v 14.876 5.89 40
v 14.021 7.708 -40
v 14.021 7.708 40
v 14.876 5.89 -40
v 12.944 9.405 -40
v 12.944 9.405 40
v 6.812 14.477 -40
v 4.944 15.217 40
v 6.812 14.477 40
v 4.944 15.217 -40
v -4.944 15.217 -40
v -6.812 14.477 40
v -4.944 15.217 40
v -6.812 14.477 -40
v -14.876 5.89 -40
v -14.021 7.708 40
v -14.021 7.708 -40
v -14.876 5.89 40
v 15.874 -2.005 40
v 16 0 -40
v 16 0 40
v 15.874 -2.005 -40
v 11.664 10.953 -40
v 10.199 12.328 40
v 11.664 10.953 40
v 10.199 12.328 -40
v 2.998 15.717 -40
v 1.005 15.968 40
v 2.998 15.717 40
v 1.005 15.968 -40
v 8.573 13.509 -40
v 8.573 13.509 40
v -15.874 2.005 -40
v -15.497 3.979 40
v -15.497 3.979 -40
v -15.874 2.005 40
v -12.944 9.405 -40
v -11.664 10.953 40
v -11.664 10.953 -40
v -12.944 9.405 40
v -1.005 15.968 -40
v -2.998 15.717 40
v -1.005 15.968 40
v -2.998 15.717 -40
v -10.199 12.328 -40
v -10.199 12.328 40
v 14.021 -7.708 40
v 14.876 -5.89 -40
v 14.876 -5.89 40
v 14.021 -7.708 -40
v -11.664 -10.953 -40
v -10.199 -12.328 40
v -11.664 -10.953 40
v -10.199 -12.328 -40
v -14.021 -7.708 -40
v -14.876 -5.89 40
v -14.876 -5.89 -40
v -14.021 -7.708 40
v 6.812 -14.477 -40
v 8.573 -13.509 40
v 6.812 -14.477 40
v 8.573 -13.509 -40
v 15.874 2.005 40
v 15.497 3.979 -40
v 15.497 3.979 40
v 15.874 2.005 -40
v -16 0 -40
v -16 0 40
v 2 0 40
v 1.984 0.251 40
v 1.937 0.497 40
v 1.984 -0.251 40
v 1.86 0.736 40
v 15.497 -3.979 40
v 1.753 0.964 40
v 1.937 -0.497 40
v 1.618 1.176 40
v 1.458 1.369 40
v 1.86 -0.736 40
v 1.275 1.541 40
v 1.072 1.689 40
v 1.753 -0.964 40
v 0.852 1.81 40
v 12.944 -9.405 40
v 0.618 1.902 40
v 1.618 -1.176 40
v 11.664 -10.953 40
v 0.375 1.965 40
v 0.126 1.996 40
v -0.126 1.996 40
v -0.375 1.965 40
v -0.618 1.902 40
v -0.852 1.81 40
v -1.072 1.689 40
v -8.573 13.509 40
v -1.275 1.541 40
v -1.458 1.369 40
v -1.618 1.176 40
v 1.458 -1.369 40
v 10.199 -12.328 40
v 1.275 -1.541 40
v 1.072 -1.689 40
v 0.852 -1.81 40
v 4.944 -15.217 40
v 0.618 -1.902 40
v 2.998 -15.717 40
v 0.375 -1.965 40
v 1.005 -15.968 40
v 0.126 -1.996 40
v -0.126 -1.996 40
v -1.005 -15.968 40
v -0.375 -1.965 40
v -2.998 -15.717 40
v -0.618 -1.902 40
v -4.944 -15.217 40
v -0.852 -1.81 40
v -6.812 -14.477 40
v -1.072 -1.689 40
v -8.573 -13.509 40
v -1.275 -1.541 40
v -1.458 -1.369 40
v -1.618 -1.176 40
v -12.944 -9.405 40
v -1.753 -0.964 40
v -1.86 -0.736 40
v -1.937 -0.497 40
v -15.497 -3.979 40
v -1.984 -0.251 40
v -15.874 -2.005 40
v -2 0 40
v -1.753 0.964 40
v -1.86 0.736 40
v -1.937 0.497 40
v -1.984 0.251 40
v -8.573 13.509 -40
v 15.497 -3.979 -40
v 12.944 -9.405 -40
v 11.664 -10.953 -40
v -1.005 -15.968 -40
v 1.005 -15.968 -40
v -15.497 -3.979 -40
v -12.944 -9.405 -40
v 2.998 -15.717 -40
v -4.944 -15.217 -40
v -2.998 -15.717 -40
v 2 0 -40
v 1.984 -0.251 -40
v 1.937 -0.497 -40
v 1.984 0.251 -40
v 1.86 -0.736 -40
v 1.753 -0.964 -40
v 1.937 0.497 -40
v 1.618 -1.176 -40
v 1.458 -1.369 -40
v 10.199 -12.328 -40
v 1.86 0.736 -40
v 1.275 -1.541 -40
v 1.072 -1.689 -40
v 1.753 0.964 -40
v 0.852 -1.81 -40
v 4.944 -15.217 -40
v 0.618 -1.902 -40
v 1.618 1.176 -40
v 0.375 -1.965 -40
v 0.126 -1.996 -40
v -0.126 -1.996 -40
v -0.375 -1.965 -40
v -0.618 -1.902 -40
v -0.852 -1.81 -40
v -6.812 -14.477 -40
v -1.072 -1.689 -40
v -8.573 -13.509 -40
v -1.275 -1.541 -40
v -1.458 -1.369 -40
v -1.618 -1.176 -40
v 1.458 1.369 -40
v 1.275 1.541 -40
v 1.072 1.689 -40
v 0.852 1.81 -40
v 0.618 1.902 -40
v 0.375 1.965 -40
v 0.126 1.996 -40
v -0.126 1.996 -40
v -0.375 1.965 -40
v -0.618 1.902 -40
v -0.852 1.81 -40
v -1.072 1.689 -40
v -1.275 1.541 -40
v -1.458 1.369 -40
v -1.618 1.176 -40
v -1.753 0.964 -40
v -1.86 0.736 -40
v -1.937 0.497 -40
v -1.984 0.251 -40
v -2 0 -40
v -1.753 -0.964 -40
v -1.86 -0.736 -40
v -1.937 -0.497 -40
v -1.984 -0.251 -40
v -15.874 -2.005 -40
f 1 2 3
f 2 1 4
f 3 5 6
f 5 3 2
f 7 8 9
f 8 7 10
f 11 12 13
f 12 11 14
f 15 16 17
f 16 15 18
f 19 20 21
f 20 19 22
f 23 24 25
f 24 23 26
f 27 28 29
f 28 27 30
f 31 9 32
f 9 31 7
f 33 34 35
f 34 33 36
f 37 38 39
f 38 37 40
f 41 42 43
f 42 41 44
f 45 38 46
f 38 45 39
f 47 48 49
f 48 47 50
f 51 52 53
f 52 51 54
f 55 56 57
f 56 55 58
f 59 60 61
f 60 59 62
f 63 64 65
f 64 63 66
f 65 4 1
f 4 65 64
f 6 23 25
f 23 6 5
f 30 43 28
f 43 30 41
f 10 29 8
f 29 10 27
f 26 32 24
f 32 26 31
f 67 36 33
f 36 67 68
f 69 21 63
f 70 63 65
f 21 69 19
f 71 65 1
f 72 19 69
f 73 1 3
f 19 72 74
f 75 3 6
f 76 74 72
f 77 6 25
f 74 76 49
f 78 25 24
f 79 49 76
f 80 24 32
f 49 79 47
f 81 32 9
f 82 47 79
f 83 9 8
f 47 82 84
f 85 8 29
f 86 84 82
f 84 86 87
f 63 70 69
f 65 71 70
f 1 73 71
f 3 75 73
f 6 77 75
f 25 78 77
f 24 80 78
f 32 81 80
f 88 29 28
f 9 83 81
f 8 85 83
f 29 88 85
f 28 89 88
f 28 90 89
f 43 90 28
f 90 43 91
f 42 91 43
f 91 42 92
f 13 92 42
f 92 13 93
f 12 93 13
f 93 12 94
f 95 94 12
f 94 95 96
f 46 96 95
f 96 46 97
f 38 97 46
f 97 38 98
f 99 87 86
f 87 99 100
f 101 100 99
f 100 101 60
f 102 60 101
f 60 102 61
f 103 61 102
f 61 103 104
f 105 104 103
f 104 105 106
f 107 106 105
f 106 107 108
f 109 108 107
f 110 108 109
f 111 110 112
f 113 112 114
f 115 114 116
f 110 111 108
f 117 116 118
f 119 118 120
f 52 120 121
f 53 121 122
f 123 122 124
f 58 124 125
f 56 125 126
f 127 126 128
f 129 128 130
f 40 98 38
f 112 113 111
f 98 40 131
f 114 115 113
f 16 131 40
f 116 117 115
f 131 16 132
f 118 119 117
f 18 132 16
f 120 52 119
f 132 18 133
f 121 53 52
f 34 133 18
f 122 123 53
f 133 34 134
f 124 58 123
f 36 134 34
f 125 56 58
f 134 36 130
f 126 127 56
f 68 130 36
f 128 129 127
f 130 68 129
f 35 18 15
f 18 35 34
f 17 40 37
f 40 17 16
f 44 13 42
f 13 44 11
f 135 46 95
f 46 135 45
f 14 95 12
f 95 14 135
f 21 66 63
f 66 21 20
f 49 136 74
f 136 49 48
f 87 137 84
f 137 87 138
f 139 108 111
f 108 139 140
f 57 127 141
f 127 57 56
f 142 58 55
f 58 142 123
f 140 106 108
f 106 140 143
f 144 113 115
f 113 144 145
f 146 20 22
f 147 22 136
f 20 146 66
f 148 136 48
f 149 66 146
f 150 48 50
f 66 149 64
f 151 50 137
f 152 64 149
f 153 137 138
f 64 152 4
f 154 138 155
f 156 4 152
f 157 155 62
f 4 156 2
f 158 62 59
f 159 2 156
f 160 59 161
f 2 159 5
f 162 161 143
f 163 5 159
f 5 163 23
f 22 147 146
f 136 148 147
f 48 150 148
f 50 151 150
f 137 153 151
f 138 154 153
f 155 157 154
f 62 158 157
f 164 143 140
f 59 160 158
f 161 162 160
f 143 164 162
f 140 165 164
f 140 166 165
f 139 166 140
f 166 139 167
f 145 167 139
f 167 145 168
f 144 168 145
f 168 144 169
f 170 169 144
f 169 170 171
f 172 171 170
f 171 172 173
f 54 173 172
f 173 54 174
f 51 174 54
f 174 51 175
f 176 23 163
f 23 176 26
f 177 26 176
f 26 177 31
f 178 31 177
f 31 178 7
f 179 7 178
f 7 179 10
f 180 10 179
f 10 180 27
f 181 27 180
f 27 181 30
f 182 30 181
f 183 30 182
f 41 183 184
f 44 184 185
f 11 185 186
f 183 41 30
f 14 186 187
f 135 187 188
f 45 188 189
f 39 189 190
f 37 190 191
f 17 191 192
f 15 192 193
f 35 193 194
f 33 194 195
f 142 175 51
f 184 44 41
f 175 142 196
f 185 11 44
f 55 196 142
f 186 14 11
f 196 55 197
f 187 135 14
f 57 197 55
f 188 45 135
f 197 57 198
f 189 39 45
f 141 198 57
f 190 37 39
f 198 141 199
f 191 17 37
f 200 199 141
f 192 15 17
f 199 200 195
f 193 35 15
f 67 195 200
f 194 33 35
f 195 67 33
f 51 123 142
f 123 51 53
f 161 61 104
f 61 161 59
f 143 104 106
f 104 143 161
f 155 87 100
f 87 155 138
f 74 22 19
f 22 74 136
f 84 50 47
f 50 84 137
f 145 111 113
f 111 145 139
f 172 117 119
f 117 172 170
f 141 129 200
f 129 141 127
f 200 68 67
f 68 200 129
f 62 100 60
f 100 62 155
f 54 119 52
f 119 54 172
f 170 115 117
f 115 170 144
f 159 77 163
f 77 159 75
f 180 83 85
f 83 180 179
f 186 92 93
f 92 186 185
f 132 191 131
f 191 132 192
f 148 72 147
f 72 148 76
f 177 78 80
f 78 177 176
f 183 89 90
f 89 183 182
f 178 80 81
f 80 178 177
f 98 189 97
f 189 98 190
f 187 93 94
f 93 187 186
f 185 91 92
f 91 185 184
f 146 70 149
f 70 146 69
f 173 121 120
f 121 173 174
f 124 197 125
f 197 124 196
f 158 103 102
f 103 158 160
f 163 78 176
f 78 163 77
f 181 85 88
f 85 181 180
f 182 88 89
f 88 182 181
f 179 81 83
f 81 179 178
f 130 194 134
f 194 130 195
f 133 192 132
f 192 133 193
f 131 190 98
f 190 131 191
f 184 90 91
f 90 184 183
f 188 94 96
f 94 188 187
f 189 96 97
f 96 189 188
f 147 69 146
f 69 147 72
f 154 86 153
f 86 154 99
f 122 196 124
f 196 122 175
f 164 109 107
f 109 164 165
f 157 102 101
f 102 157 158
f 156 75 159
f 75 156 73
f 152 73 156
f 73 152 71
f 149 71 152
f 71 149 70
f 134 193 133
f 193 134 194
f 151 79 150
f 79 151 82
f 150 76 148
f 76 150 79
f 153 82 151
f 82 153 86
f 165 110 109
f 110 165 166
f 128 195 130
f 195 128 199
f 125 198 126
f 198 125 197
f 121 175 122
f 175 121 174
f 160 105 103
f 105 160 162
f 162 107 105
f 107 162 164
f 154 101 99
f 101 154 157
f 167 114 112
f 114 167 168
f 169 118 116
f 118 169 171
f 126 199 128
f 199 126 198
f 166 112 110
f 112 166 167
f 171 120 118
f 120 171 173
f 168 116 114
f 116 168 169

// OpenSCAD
$fn = 50;


difference() {
	union() {
		translate(v = [0, 0, -40.0000000000]) {
			cylinder(h = 80, r = 16.0000000000);
		}
	}
	union() {
		translate(v = [0, 0, -100.0000000000]) {
			cylinder(h = 200, r = 2);
		}
	}
}
